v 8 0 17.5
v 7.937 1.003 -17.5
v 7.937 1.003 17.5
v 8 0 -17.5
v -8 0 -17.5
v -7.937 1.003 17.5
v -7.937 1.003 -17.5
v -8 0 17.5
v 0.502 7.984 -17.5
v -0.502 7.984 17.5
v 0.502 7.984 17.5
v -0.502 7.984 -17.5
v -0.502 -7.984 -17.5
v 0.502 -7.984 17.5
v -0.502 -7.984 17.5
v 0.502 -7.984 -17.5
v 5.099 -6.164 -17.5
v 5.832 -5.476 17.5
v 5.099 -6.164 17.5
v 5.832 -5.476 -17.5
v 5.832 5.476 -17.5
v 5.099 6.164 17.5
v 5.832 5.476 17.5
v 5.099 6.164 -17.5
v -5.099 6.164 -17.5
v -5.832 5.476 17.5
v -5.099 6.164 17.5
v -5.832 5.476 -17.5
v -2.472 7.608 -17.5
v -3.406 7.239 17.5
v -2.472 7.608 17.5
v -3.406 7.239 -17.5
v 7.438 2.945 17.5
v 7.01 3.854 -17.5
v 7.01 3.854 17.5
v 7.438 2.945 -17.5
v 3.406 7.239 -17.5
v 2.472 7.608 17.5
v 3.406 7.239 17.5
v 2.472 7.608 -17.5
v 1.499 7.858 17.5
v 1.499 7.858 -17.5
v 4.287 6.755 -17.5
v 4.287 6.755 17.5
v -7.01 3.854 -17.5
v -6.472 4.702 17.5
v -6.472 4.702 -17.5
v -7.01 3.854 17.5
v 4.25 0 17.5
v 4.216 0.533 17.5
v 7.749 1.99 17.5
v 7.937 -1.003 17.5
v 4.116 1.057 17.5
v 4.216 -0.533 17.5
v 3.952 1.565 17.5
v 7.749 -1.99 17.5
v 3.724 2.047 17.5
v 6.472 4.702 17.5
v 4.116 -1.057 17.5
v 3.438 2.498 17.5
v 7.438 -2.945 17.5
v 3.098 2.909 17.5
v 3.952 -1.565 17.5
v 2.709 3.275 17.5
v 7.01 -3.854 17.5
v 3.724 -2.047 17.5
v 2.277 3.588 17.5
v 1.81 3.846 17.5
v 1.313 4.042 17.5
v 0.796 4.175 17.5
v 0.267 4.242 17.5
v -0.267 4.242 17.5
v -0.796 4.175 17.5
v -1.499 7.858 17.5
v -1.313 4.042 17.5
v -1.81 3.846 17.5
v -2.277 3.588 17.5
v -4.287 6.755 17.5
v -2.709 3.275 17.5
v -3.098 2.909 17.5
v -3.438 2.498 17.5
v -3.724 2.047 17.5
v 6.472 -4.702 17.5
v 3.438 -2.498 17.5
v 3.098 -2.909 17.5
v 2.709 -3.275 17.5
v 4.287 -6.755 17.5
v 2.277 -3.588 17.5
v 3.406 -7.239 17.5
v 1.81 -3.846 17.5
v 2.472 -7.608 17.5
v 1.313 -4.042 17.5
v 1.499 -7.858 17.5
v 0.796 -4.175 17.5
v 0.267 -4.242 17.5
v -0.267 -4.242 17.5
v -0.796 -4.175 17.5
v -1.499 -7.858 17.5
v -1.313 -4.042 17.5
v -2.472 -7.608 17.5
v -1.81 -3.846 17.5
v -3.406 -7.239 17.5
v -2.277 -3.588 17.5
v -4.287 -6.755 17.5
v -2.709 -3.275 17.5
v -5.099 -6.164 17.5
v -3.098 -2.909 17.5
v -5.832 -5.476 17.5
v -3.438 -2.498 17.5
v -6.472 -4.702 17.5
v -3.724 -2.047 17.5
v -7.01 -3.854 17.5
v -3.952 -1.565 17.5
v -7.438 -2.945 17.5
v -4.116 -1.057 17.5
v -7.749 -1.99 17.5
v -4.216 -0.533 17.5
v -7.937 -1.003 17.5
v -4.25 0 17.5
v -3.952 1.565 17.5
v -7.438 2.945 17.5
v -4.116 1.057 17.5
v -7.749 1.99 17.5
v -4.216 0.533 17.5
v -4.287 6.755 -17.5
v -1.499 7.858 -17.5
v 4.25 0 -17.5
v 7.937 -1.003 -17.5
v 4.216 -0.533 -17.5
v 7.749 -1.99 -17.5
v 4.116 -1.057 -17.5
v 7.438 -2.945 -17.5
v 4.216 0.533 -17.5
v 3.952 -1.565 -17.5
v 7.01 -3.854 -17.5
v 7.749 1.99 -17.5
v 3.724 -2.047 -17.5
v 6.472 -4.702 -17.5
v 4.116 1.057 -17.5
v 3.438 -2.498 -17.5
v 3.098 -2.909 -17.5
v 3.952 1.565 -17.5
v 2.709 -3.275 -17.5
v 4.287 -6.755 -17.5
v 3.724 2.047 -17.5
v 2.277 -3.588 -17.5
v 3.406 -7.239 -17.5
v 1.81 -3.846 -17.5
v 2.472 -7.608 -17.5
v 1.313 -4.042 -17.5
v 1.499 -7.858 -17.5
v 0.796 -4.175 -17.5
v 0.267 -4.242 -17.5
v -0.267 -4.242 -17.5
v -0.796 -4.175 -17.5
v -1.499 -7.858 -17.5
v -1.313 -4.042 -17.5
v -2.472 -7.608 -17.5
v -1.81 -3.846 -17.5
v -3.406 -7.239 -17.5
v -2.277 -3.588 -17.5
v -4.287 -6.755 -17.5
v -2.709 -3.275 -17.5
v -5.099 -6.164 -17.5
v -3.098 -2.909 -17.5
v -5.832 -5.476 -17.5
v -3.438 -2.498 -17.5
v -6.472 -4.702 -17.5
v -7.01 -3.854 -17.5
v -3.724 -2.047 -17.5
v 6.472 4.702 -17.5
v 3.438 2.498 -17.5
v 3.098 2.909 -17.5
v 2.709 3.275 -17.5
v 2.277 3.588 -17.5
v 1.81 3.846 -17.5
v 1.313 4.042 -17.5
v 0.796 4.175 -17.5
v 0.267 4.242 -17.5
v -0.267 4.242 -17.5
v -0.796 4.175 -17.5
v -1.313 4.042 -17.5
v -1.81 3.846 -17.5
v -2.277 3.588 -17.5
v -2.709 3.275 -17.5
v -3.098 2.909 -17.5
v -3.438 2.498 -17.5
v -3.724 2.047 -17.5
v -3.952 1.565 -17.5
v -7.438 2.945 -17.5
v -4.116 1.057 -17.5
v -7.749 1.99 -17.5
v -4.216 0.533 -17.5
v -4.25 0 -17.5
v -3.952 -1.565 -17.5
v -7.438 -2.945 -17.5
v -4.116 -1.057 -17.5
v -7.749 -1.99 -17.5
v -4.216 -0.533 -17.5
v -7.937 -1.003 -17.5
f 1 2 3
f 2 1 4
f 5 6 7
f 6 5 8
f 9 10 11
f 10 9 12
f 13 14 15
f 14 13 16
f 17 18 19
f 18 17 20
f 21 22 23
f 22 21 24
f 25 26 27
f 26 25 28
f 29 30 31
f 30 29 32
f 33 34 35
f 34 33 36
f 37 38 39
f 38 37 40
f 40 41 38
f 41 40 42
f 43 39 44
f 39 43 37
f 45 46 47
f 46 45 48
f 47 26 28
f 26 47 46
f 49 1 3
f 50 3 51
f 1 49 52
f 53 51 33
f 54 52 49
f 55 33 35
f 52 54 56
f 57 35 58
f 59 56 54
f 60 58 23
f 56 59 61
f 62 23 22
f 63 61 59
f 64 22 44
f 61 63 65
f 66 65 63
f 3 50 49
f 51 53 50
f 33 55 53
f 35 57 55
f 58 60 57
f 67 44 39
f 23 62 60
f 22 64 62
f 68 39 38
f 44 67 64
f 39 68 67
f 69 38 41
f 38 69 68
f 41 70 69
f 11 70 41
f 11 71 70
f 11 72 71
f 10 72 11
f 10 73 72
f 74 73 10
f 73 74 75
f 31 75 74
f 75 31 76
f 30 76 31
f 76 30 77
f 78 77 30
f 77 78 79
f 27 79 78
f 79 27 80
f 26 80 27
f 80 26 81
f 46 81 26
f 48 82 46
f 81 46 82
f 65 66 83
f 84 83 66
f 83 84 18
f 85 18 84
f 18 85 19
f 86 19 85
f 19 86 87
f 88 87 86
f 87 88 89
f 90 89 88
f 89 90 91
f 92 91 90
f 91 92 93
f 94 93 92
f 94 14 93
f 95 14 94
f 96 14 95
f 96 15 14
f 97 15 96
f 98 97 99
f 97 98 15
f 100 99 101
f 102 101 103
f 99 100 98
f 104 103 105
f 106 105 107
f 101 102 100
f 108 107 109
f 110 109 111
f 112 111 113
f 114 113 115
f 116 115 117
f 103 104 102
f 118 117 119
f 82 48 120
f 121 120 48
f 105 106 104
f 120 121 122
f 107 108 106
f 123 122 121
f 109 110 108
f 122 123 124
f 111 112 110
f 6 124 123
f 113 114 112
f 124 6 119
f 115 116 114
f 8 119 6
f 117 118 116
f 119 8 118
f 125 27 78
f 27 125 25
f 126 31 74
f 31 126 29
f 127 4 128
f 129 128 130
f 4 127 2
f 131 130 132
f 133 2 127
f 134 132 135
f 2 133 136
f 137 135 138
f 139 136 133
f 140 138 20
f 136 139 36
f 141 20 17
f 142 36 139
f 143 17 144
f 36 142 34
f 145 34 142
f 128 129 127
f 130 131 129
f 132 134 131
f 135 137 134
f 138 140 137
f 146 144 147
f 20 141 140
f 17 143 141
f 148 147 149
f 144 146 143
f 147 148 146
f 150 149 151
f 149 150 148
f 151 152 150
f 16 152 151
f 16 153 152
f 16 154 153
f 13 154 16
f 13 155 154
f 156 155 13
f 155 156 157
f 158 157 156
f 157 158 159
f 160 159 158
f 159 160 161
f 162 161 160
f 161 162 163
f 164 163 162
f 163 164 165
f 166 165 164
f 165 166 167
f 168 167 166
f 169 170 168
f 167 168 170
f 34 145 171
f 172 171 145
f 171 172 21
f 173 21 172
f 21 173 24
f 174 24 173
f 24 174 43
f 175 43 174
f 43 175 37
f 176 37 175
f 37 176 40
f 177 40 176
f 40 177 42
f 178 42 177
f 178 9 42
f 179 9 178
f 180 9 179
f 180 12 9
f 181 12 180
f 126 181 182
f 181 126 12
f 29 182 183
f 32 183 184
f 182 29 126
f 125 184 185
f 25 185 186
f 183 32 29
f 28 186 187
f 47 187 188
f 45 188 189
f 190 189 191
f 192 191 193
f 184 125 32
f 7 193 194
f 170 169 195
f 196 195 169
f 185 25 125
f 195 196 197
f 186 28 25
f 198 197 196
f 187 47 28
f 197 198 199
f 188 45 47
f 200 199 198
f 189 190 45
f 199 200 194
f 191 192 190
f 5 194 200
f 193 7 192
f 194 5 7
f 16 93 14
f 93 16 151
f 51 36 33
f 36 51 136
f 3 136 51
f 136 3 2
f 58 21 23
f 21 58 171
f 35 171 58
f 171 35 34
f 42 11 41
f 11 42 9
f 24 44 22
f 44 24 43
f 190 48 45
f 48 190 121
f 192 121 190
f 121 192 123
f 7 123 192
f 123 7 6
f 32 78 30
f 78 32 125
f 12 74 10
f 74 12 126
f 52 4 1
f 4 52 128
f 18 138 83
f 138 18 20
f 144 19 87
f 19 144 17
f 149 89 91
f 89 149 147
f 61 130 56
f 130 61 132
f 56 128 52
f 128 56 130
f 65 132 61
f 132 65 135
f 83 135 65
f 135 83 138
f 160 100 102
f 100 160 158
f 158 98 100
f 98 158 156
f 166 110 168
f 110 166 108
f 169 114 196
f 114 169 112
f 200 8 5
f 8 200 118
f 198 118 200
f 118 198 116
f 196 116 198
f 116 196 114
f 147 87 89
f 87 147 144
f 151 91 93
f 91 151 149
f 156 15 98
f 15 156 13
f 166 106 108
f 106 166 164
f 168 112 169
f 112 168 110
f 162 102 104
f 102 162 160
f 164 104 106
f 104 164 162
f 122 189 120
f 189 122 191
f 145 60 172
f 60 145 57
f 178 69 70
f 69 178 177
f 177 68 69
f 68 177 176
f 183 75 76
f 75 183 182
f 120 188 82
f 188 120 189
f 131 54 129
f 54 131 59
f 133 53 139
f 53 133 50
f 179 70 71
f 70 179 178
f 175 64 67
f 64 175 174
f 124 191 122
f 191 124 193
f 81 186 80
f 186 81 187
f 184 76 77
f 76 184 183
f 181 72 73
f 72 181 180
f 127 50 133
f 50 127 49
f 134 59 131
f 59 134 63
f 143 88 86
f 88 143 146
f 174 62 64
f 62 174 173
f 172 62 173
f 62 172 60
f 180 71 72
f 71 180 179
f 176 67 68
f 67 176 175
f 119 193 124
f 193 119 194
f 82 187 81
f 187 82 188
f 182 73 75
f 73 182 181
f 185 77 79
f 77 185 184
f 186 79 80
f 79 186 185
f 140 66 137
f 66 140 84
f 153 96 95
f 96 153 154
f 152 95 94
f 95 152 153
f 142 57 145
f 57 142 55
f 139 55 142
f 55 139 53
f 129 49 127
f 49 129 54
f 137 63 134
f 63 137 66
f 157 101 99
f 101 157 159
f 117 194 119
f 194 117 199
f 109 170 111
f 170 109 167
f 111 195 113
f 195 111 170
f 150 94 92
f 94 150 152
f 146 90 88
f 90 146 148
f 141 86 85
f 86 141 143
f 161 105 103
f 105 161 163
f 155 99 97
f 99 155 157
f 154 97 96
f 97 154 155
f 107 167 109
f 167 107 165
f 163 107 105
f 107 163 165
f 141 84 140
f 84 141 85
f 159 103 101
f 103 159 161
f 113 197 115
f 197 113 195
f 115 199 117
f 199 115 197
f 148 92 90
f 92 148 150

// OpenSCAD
$fn = 50;


difference() {
	union() {
		translate(v = [0, 0, -17.5000000000]) {
			cylinder(h = 35, r = 8.0000000000);
		}
	}
	union() {
		translate(v = [0, 0, -100.0000000000]) {
			cylinder(h = 200, r = 4.2500000000);
		}
	}
}
